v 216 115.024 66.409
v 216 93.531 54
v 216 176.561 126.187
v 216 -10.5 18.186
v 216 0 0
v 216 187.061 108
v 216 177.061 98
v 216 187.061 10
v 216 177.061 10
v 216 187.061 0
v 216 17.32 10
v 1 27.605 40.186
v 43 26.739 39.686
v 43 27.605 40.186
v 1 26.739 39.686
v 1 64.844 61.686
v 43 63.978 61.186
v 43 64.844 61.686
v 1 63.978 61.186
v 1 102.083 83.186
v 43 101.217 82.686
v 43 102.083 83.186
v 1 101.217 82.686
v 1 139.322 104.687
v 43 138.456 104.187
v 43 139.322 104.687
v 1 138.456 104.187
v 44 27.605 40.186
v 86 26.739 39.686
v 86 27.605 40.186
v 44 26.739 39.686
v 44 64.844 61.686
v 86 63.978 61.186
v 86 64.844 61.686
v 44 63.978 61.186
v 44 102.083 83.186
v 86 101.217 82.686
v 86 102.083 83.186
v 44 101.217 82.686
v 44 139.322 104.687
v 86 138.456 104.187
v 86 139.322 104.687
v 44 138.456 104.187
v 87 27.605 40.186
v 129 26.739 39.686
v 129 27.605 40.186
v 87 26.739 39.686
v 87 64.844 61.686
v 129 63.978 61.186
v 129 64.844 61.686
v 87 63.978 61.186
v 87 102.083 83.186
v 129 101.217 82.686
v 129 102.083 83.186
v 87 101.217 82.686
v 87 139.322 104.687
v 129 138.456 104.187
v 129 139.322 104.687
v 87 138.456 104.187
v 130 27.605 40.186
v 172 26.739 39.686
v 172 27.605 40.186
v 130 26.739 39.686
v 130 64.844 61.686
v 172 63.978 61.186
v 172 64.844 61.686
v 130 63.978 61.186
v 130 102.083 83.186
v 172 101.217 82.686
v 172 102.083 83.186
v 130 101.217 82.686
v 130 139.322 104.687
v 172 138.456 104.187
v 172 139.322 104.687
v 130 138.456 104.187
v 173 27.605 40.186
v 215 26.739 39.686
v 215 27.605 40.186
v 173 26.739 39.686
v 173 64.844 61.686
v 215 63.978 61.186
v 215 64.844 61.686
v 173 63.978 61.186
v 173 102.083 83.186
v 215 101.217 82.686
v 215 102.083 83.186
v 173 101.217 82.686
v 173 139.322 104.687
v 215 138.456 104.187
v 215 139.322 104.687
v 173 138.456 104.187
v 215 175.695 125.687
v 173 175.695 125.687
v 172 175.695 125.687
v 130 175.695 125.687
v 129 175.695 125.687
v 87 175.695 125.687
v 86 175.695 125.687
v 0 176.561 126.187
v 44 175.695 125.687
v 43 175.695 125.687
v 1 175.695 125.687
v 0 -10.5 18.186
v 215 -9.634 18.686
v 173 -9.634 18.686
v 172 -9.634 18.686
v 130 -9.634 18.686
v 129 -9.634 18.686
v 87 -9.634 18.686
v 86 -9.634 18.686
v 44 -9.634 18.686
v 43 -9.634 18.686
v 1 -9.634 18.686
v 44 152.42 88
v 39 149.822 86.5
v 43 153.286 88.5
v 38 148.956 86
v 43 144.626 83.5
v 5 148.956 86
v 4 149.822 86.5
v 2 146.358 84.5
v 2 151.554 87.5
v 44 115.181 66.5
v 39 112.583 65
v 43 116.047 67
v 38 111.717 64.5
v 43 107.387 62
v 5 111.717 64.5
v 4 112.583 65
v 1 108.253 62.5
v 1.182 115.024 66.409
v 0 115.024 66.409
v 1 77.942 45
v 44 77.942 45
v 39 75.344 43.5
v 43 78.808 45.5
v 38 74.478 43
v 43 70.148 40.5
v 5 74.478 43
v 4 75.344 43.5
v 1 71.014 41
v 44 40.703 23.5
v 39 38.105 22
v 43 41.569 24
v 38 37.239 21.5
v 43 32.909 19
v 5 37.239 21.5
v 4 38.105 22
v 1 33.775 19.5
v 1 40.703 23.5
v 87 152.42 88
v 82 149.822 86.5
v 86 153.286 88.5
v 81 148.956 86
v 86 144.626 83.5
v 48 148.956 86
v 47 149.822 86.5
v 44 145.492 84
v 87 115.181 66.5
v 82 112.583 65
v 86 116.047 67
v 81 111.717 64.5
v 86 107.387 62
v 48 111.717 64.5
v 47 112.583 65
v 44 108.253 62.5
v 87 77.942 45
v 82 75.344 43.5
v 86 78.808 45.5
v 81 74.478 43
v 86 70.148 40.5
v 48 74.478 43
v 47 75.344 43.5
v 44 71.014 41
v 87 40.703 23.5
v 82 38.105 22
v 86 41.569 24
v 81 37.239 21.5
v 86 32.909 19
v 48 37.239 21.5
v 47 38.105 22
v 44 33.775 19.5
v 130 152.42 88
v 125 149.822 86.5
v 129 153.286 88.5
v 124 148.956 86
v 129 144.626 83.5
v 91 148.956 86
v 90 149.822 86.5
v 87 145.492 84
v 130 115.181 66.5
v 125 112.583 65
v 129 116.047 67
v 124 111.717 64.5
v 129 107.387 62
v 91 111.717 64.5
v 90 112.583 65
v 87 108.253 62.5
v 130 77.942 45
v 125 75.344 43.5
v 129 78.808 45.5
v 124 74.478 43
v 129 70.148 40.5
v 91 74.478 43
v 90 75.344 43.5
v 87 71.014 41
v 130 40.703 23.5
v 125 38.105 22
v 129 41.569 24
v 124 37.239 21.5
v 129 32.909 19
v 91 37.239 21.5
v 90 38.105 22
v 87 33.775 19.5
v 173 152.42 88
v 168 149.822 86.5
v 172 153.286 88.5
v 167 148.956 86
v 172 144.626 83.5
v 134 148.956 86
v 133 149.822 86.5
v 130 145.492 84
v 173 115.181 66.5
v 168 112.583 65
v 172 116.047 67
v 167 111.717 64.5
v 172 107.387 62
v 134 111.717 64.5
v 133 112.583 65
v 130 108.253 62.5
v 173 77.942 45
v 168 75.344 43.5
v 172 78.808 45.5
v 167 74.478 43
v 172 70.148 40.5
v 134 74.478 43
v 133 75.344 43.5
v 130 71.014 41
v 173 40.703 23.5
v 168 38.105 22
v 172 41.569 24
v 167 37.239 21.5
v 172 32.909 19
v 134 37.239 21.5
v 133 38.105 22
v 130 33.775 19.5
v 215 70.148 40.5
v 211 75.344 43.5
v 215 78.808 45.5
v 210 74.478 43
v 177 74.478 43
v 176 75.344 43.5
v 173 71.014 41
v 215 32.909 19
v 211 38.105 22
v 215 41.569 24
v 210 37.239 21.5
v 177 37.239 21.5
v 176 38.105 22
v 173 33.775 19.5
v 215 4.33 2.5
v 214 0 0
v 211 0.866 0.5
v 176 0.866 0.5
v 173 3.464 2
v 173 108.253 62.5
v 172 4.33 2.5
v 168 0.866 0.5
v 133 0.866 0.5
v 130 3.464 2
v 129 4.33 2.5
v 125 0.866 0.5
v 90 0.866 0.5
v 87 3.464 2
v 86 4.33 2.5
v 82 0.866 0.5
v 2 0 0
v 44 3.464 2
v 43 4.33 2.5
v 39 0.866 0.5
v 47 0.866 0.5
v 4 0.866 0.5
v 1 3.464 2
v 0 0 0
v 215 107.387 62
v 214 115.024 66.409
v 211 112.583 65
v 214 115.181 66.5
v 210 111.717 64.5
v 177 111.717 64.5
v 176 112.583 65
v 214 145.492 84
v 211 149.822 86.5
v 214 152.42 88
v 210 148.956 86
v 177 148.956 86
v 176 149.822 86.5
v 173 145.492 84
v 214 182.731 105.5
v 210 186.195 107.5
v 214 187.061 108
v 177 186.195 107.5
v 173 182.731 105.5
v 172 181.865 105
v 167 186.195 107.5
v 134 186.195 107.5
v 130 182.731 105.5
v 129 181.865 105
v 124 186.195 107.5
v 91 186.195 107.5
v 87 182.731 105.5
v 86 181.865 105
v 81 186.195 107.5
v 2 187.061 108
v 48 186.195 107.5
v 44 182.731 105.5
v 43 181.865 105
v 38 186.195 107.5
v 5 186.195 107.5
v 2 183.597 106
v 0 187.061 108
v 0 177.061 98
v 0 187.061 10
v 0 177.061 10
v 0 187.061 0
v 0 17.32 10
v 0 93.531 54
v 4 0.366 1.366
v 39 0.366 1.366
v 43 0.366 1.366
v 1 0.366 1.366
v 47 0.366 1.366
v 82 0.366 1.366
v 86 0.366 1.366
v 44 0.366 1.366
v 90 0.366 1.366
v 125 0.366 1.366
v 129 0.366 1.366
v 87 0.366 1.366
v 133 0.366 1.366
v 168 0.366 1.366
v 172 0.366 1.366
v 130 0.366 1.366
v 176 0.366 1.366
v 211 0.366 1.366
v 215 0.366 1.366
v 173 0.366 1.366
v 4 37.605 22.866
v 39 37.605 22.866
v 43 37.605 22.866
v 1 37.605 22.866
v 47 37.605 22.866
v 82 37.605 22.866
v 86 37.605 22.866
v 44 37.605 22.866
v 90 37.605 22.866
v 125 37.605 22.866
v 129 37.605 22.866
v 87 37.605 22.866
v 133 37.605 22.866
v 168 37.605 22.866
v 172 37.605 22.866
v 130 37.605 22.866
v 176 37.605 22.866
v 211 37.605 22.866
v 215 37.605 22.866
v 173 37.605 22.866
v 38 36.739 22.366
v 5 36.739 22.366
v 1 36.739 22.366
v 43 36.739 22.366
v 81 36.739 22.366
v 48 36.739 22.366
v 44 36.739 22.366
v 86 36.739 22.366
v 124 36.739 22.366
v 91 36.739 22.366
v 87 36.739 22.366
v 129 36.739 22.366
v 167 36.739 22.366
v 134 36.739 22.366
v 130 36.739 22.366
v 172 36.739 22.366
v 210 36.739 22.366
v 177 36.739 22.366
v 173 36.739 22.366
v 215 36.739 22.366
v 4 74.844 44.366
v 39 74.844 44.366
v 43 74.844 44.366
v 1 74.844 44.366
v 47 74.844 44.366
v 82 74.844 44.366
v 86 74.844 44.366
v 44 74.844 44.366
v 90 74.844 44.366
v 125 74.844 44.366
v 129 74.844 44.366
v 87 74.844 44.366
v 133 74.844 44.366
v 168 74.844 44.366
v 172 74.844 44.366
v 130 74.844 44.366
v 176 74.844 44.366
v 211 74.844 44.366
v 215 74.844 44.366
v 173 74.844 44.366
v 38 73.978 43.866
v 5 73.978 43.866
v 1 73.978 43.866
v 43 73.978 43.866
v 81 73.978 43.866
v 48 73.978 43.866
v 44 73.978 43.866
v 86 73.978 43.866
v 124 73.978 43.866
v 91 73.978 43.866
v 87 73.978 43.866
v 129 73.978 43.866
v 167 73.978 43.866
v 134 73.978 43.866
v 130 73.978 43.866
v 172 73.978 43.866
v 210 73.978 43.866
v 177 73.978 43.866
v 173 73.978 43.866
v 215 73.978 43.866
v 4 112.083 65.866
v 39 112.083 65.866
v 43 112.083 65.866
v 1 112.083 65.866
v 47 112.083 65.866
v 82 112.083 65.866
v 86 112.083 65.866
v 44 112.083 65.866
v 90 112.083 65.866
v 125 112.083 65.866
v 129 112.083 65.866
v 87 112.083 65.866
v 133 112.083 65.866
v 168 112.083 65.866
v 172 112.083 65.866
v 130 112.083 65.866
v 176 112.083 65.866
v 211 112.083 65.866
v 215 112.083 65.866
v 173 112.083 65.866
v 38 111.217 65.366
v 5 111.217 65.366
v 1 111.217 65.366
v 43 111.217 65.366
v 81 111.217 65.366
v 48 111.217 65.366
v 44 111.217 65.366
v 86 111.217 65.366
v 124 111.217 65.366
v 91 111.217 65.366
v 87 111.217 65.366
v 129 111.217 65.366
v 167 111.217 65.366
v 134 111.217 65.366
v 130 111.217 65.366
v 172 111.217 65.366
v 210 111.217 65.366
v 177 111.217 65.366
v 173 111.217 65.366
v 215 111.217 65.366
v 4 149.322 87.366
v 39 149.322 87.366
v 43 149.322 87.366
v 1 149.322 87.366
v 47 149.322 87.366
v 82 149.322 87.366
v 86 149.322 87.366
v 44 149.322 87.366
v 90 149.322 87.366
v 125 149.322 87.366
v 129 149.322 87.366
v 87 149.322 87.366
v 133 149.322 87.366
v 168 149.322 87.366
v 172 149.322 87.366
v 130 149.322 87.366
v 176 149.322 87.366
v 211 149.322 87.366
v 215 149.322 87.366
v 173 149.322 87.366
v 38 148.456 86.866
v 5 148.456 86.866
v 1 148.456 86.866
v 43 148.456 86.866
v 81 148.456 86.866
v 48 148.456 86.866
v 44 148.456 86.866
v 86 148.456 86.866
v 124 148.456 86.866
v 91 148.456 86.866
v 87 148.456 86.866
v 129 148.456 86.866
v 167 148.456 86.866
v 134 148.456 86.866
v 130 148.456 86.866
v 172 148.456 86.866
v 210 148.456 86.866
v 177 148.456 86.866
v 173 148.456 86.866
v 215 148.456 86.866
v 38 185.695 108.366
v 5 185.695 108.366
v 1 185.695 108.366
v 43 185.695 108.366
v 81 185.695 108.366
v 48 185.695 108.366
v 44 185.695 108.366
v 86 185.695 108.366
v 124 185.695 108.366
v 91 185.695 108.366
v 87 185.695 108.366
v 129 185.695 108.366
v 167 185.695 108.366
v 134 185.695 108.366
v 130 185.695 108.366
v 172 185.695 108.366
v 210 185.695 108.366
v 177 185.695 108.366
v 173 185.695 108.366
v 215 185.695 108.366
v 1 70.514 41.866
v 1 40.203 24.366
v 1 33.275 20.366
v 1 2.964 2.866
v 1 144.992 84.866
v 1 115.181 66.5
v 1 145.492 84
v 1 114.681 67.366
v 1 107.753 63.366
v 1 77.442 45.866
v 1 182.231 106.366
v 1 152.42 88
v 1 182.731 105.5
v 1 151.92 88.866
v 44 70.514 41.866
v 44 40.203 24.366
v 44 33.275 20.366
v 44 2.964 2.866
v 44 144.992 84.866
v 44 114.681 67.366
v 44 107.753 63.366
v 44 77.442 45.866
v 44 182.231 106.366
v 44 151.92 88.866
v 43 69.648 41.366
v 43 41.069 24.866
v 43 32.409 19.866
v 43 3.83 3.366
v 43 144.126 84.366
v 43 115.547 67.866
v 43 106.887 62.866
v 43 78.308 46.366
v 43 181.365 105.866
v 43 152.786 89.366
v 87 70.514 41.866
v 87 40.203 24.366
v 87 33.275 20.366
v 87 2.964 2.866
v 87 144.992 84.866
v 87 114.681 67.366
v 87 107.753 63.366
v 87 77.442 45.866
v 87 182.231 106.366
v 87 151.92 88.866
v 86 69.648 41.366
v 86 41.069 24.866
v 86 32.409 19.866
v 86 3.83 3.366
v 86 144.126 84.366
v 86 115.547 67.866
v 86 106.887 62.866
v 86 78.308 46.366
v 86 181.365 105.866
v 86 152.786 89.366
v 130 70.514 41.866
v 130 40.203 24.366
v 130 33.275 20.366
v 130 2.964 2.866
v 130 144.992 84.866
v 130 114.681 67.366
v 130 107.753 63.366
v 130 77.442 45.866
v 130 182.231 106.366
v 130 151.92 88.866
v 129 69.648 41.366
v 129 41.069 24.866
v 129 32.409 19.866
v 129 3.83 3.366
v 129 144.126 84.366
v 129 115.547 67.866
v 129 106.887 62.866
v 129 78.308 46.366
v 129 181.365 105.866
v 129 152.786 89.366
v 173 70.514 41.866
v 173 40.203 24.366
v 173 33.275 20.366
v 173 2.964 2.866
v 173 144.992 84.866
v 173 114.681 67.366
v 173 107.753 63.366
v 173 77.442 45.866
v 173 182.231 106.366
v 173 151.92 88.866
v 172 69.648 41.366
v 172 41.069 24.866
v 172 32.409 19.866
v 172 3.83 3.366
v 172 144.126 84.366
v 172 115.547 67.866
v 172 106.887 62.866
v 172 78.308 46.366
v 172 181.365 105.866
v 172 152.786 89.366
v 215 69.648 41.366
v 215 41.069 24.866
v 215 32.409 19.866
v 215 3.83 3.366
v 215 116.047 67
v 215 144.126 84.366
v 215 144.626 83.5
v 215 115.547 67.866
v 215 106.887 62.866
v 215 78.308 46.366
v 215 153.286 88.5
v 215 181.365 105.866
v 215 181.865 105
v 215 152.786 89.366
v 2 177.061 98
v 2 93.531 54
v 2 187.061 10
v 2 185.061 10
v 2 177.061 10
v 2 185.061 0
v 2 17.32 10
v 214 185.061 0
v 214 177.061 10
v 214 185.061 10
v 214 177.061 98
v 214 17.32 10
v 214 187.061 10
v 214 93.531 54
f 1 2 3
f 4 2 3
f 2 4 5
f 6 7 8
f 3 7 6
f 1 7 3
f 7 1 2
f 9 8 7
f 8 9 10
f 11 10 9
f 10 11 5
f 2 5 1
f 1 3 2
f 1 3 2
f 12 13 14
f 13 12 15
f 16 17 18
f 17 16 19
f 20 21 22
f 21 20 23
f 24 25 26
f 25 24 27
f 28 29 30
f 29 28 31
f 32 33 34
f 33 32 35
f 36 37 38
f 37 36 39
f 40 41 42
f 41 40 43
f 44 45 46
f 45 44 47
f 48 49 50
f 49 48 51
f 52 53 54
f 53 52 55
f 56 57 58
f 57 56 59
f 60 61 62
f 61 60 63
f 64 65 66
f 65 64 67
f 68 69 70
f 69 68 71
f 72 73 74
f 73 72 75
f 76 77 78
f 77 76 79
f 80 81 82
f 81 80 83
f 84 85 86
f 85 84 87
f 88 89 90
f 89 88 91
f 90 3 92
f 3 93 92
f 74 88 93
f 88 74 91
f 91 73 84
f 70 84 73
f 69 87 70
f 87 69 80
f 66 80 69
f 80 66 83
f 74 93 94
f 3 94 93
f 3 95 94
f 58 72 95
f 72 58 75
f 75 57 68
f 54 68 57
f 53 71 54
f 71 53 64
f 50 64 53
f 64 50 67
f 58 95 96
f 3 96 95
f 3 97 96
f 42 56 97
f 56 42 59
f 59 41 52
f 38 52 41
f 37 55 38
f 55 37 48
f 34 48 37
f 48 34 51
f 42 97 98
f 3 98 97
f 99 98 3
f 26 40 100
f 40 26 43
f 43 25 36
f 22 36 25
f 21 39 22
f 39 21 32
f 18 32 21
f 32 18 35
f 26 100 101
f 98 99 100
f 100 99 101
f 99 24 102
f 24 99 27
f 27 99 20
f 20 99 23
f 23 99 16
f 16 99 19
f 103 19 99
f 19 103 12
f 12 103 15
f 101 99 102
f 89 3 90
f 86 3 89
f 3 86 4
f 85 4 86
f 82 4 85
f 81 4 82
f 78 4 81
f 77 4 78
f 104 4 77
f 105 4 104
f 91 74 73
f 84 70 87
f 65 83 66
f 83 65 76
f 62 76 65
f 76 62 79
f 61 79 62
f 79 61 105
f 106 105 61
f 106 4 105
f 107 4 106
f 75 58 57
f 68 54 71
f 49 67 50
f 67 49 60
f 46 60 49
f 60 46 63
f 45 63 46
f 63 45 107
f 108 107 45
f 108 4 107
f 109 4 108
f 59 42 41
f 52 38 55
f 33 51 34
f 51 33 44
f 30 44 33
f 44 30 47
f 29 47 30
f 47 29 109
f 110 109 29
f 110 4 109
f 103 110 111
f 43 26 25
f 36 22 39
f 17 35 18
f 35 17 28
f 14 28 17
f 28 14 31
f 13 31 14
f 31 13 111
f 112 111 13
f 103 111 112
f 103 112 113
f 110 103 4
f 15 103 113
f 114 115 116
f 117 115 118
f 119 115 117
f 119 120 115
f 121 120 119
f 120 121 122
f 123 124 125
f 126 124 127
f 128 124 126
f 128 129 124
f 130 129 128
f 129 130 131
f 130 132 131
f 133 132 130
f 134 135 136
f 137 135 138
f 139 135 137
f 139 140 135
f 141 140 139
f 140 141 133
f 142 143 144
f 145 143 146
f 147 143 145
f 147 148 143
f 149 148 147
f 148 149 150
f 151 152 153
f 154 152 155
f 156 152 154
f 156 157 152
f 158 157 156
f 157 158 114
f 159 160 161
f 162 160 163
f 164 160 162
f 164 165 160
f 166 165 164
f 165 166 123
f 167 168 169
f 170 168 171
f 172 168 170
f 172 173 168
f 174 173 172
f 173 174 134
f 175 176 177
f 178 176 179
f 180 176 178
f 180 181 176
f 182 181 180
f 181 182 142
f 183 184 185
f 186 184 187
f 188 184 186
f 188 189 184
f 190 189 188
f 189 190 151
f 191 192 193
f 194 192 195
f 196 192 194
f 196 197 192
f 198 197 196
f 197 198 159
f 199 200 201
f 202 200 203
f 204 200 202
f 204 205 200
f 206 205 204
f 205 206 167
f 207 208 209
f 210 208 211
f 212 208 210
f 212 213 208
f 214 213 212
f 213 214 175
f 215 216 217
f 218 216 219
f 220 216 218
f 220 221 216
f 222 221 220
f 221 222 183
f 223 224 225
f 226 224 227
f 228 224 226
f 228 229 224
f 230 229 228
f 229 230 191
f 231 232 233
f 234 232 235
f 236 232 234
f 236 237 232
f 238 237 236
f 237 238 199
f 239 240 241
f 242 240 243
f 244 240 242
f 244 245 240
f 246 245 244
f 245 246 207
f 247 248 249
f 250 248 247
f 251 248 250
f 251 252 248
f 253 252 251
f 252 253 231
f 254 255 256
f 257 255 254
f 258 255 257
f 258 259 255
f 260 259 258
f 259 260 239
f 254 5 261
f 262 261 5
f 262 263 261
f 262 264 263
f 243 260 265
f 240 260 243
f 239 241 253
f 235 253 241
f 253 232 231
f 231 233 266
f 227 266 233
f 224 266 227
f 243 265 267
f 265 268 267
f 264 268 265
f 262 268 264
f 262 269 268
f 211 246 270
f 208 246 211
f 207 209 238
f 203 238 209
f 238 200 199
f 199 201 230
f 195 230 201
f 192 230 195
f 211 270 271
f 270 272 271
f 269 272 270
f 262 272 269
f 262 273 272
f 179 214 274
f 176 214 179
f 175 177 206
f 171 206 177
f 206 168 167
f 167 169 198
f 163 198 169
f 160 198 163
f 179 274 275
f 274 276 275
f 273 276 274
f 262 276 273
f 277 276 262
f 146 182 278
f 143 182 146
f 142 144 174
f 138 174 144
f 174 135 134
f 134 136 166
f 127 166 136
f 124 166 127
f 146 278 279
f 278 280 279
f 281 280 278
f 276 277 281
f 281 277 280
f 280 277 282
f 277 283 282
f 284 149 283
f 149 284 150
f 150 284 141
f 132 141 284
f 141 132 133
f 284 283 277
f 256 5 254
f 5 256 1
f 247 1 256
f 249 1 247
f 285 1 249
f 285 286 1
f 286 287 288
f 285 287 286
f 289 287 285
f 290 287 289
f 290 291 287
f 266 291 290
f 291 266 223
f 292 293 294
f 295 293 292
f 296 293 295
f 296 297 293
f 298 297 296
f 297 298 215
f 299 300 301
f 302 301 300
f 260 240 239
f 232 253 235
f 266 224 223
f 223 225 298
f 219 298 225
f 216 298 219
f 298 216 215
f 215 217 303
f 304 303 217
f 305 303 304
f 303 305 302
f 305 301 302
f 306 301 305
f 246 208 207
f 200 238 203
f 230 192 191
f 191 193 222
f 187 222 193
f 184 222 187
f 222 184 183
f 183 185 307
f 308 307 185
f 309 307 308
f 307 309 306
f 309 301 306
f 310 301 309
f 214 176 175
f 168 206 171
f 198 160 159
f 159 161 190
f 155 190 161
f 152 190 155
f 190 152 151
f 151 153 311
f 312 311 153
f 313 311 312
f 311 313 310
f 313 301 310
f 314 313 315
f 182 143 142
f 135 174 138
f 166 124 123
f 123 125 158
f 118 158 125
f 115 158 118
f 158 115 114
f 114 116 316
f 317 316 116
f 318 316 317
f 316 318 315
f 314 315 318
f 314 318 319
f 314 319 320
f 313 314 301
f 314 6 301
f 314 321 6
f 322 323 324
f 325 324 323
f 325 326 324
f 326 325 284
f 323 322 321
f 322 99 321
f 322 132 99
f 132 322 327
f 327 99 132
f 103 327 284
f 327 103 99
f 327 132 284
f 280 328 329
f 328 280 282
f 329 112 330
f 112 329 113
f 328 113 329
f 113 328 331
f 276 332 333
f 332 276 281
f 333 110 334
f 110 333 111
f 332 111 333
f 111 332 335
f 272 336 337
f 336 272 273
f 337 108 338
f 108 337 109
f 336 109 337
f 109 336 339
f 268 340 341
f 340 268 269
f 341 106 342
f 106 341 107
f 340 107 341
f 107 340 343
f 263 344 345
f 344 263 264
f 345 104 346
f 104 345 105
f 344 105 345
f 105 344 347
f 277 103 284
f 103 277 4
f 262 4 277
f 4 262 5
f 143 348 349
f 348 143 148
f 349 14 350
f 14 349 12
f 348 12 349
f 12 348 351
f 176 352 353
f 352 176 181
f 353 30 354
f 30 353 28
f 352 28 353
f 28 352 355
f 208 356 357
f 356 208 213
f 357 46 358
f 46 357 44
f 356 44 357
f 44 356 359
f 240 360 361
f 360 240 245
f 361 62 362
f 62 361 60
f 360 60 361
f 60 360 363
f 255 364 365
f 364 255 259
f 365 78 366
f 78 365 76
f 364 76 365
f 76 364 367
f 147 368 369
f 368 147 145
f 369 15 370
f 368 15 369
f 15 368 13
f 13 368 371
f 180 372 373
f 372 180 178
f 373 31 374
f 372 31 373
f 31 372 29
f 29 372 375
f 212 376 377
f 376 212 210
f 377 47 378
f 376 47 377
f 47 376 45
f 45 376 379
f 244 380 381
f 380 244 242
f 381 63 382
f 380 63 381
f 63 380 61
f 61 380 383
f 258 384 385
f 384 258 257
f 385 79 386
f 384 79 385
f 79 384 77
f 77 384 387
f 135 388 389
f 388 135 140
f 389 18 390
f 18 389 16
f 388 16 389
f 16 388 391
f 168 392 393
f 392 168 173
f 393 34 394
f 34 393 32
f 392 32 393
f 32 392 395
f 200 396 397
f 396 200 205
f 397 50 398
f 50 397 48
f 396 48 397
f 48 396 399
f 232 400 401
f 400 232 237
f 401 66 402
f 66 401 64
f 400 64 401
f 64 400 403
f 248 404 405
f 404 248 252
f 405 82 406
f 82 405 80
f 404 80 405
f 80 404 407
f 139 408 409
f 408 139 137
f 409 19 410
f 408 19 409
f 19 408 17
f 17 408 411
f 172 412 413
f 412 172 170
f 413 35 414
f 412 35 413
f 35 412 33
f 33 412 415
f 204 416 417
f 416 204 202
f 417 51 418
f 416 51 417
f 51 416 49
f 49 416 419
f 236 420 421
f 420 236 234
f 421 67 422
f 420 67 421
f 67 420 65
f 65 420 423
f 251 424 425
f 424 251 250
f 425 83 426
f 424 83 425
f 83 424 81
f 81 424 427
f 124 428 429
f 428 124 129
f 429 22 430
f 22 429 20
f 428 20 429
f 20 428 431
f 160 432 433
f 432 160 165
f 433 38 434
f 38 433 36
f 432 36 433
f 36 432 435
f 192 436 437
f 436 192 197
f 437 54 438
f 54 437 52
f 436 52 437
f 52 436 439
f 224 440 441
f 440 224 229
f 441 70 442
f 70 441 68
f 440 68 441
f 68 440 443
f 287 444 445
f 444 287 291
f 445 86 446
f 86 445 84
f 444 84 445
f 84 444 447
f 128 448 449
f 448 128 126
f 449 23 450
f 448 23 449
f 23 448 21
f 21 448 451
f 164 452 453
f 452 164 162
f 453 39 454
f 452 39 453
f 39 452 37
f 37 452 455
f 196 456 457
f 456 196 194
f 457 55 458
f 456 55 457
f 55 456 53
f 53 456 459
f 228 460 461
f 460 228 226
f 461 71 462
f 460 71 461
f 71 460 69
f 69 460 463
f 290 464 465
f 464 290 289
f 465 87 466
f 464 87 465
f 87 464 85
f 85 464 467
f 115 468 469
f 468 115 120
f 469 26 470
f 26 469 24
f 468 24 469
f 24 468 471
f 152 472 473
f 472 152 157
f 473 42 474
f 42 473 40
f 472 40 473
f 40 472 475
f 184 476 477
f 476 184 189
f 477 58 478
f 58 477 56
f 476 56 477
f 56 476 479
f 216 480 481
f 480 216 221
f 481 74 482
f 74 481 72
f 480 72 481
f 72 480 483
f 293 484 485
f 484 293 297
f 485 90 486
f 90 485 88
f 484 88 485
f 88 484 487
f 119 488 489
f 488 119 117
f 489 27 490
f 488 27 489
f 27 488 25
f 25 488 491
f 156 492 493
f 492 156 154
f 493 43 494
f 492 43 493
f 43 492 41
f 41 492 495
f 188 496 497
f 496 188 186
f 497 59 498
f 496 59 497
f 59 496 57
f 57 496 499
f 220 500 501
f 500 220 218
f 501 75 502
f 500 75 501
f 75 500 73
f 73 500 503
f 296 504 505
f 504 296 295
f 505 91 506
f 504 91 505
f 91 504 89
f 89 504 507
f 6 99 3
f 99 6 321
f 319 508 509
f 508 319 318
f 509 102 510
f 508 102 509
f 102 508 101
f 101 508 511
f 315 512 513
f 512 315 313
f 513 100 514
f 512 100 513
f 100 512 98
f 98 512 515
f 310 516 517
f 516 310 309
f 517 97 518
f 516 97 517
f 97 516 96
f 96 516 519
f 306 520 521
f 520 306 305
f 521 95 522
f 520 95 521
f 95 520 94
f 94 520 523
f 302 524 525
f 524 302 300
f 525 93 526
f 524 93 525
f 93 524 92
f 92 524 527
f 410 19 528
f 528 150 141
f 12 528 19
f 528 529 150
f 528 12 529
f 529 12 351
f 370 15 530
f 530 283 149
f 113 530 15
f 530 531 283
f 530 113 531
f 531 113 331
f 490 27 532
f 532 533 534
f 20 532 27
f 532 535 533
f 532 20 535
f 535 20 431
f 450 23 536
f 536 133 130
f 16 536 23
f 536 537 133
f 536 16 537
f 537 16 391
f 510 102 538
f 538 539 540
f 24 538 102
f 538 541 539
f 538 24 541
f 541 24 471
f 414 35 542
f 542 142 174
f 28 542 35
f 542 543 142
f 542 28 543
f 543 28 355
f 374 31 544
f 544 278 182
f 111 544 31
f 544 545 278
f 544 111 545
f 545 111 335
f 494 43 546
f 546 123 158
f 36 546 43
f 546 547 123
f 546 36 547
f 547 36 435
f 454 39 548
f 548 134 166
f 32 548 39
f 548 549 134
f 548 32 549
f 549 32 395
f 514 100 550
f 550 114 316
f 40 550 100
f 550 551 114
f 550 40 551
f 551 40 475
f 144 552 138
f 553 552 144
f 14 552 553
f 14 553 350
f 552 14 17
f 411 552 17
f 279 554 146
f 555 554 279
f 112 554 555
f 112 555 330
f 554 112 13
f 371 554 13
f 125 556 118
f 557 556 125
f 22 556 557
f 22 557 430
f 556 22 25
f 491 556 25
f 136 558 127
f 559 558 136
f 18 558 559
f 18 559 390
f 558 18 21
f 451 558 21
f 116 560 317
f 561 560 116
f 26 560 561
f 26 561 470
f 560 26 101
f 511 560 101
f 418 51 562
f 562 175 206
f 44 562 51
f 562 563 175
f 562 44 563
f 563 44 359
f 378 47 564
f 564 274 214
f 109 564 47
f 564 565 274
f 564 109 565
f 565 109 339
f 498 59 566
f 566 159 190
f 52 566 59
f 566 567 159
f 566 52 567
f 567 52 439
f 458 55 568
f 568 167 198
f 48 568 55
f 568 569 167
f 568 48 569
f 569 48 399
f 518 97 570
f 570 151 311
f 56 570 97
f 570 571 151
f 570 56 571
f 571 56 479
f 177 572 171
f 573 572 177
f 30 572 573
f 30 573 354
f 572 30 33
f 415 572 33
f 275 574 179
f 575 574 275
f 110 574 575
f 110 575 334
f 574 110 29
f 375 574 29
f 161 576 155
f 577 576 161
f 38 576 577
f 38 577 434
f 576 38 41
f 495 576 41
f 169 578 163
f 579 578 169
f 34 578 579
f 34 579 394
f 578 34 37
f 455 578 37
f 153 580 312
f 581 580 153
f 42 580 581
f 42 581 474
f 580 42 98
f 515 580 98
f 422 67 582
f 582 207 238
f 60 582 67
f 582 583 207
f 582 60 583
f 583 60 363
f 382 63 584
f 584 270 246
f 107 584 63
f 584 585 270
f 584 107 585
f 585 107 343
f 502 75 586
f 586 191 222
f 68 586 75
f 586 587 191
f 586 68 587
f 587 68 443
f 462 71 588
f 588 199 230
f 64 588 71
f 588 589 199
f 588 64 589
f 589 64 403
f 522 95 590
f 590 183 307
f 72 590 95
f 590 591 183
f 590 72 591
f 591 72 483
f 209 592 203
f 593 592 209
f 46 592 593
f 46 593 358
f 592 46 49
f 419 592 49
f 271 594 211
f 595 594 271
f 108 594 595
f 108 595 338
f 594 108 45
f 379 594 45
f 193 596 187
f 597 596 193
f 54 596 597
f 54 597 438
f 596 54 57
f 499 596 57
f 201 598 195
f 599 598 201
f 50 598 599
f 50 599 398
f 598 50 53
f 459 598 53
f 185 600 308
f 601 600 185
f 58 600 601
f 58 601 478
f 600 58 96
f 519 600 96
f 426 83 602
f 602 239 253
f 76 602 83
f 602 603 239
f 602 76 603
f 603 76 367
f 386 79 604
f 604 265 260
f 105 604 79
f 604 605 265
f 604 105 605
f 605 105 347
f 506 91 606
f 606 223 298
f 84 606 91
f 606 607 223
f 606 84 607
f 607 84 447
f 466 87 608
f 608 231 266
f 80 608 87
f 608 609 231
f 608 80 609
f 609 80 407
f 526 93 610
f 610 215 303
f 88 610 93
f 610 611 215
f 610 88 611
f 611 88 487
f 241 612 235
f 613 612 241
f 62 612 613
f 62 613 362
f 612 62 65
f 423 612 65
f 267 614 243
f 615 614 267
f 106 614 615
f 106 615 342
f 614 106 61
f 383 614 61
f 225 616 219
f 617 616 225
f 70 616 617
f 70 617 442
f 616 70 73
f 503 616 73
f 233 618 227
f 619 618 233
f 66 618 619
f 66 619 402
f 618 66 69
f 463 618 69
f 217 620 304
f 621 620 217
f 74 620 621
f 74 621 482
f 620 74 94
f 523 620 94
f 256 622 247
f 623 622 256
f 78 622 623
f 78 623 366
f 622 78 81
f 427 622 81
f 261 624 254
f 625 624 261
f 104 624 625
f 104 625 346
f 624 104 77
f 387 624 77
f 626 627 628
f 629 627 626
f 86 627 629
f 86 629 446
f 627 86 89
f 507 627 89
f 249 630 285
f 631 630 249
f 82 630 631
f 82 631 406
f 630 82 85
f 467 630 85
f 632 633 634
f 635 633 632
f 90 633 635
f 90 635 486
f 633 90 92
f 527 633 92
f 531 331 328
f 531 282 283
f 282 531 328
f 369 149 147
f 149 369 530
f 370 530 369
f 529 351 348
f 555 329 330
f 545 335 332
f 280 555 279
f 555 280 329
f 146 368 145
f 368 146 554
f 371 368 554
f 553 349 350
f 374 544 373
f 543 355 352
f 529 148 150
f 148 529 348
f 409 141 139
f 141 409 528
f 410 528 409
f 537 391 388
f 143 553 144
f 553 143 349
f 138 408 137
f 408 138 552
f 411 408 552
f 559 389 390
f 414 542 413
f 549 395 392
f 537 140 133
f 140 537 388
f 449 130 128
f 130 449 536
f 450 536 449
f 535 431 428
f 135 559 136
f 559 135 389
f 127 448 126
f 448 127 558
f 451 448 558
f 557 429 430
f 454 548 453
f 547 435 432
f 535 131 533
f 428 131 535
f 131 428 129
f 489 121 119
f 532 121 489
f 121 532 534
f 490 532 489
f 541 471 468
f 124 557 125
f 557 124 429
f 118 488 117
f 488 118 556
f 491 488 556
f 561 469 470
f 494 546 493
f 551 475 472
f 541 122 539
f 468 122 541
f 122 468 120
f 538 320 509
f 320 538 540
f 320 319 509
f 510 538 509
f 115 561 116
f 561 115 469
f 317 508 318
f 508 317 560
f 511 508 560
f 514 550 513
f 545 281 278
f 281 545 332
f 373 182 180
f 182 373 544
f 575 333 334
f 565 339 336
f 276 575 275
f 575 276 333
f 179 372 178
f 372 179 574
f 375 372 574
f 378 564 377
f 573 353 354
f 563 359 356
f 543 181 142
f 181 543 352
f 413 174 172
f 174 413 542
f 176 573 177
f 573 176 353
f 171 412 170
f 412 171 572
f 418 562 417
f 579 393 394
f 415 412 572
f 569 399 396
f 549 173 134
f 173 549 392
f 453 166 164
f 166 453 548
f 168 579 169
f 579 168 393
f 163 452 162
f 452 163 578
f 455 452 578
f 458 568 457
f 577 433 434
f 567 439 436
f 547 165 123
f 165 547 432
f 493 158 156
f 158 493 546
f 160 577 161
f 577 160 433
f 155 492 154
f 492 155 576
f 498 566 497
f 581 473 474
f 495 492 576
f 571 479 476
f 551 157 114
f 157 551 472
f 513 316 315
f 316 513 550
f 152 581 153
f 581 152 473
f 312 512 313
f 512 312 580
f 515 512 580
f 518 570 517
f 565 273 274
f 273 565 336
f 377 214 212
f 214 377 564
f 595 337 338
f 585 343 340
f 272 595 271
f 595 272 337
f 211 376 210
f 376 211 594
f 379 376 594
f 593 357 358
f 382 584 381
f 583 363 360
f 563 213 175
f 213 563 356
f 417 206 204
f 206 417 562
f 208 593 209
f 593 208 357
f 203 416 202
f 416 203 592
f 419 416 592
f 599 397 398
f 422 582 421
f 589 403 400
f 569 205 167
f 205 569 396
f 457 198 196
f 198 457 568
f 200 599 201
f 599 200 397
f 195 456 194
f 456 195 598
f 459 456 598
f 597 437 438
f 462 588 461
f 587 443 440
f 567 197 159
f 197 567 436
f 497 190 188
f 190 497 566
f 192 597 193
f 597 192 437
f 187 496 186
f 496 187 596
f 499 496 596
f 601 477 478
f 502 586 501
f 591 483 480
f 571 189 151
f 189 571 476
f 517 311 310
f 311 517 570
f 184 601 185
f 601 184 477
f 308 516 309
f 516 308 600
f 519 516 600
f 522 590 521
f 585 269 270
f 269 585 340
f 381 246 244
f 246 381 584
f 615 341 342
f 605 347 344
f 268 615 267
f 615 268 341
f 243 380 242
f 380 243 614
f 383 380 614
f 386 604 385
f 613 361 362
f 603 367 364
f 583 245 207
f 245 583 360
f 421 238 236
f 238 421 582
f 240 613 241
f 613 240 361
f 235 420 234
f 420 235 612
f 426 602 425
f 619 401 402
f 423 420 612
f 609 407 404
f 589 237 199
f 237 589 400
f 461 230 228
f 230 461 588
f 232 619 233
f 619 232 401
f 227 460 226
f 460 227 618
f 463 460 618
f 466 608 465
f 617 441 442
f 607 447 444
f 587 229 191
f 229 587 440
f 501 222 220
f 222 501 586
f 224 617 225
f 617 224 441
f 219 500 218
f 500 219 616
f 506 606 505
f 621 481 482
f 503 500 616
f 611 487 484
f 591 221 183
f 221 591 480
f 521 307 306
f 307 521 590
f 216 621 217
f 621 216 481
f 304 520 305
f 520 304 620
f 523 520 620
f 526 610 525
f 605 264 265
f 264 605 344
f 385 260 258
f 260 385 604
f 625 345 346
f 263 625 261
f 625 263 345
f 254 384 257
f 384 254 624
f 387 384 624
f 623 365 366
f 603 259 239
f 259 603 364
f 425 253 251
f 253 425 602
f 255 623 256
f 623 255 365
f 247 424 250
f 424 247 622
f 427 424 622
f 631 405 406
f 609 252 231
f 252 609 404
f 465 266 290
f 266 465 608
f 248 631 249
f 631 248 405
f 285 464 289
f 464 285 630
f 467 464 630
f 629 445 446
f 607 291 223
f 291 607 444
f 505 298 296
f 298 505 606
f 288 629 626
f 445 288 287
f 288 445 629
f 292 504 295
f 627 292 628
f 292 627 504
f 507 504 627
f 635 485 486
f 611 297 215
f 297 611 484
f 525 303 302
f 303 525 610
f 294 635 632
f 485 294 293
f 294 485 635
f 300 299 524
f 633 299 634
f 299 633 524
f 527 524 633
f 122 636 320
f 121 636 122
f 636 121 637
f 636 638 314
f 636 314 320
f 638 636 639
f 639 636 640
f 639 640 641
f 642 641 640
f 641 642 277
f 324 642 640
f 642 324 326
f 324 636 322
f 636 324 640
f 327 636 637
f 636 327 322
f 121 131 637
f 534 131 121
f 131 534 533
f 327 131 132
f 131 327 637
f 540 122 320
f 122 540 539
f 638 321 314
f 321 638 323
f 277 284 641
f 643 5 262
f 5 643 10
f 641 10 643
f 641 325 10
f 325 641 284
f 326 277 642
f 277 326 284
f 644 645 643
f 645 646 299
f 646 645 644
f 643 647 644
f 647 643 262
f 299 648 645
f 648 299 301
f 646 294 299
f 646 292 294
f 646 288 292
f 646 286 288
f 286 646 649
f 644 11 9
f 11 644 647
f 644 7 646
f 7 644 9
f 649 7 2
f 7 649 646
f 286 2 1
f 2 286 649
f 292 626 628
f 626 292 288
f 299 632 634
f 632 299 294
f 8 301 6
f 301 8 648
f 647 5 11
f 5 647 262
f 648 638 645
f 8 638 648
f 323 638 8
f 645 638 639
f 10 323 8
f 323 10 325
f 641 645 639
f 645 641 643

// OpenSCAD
cellL = 42;
cellH = 20;
nColumns = 5;
nRows = 5;
tilt = 30;
holderUnit = 5;

wallThickness = 1;
legsThickness = wallThickness*2;

outerCellL = cellL + wallThickness;
outerCellH = cellH + wallThickness;
outerW = outerCellL*(nColumns)+wallThickness;
outerL = outerCellL*(nRows)+wallThickness;

depth = outerL*cos(tilt);
legsH = outerL*sin(tilt);

echo(H=legsH)
echo(outerW = outerW);
echo(outerL = outerL);
echo(depth = depth);

module rows(n) {
    for(i = [0:1:n]) {
        translate([0, i*outerCellL, 0]) {
            cube([outerW, wallThickness, outerCellH]);
        }
    }
}

module columns(n) {
    for(i = [0:1:n]) {
        translate([i*outerCellL, 0, 0]) {
            cube([wallThickness, outerL, outerCellH]);
        }
    }
}

module bottomUnit() {
    linear_extrude(wallThickness) {
            polygon([[0,0], [holderUnit,0], [0,holderUnit]]);
    }
    translate([0, outerCellL, 0]) {
        linear_extrude(wallThickness) {
            polygon([[0,0], [holderUnit,0], [0,-holderUnit]]);
        }
    }
    translate([outerCellL, 0, 0]) {
        linear_extrude(wallThickness) {
            polygon([[-holderUnit,0], [0,holderUnit], [0,0]]);
        }
    }
    translate([outerCellL, outerCellL, 0]) {
        linear_extrude(wallThickness) {
            polygon([[0,0], [-holderUnit,0], [0,-holderUnit]]);
        }
    }
}

module bottom() {
    for(i = [0:1:nRows-1]) {
        for(j = [0:1:nColumns-1]) {
            translate([i*outerCellL, j*outerCellL, wallThickness]) {
                bottomUnit();
            }
        }
    }
}

//module bottom() {
//    cube([outerW, outerL, wallThickness]);
//}

module grid() {
    union() {
        rows(nRows);
        columns(nColumns);
        translate([0,0,-wallThickness]) {
            bottom();
        }
    }
}

module leg() {
    rotate([0, -90, 0]) {
    linear_extrude(legsThickness) {
           difference() {
               polygon([[0,0], [0,depth], [legsH,depth]]);
               polygon([[10,10], [10,depth-10], [legsH-10,depth-10]]);
           }
        }
    }
}

module beam() {
    cube([outerW, legsThickness, 10]);
}

module supports() {
    yFactor = 0;
    zFactor = 0;
    union() {
        translate([legsThickness, yFactor, zFactor]) {
            leg();
        }
        translate([outerW, yFactor, zFactor]) {
            leg();
        }
        translate([0,depth-legsThickness+yFactor, zFactor]) {
            beam();
        }
    }
}

module whole() {
    union() {
        rotate([tilt, 0, 0]) {
            grid();
        }
        supports();
    }
}

module wholeWithoutLegs() {
    grid();
} 

whole();
//wholeWithoutLegs();
